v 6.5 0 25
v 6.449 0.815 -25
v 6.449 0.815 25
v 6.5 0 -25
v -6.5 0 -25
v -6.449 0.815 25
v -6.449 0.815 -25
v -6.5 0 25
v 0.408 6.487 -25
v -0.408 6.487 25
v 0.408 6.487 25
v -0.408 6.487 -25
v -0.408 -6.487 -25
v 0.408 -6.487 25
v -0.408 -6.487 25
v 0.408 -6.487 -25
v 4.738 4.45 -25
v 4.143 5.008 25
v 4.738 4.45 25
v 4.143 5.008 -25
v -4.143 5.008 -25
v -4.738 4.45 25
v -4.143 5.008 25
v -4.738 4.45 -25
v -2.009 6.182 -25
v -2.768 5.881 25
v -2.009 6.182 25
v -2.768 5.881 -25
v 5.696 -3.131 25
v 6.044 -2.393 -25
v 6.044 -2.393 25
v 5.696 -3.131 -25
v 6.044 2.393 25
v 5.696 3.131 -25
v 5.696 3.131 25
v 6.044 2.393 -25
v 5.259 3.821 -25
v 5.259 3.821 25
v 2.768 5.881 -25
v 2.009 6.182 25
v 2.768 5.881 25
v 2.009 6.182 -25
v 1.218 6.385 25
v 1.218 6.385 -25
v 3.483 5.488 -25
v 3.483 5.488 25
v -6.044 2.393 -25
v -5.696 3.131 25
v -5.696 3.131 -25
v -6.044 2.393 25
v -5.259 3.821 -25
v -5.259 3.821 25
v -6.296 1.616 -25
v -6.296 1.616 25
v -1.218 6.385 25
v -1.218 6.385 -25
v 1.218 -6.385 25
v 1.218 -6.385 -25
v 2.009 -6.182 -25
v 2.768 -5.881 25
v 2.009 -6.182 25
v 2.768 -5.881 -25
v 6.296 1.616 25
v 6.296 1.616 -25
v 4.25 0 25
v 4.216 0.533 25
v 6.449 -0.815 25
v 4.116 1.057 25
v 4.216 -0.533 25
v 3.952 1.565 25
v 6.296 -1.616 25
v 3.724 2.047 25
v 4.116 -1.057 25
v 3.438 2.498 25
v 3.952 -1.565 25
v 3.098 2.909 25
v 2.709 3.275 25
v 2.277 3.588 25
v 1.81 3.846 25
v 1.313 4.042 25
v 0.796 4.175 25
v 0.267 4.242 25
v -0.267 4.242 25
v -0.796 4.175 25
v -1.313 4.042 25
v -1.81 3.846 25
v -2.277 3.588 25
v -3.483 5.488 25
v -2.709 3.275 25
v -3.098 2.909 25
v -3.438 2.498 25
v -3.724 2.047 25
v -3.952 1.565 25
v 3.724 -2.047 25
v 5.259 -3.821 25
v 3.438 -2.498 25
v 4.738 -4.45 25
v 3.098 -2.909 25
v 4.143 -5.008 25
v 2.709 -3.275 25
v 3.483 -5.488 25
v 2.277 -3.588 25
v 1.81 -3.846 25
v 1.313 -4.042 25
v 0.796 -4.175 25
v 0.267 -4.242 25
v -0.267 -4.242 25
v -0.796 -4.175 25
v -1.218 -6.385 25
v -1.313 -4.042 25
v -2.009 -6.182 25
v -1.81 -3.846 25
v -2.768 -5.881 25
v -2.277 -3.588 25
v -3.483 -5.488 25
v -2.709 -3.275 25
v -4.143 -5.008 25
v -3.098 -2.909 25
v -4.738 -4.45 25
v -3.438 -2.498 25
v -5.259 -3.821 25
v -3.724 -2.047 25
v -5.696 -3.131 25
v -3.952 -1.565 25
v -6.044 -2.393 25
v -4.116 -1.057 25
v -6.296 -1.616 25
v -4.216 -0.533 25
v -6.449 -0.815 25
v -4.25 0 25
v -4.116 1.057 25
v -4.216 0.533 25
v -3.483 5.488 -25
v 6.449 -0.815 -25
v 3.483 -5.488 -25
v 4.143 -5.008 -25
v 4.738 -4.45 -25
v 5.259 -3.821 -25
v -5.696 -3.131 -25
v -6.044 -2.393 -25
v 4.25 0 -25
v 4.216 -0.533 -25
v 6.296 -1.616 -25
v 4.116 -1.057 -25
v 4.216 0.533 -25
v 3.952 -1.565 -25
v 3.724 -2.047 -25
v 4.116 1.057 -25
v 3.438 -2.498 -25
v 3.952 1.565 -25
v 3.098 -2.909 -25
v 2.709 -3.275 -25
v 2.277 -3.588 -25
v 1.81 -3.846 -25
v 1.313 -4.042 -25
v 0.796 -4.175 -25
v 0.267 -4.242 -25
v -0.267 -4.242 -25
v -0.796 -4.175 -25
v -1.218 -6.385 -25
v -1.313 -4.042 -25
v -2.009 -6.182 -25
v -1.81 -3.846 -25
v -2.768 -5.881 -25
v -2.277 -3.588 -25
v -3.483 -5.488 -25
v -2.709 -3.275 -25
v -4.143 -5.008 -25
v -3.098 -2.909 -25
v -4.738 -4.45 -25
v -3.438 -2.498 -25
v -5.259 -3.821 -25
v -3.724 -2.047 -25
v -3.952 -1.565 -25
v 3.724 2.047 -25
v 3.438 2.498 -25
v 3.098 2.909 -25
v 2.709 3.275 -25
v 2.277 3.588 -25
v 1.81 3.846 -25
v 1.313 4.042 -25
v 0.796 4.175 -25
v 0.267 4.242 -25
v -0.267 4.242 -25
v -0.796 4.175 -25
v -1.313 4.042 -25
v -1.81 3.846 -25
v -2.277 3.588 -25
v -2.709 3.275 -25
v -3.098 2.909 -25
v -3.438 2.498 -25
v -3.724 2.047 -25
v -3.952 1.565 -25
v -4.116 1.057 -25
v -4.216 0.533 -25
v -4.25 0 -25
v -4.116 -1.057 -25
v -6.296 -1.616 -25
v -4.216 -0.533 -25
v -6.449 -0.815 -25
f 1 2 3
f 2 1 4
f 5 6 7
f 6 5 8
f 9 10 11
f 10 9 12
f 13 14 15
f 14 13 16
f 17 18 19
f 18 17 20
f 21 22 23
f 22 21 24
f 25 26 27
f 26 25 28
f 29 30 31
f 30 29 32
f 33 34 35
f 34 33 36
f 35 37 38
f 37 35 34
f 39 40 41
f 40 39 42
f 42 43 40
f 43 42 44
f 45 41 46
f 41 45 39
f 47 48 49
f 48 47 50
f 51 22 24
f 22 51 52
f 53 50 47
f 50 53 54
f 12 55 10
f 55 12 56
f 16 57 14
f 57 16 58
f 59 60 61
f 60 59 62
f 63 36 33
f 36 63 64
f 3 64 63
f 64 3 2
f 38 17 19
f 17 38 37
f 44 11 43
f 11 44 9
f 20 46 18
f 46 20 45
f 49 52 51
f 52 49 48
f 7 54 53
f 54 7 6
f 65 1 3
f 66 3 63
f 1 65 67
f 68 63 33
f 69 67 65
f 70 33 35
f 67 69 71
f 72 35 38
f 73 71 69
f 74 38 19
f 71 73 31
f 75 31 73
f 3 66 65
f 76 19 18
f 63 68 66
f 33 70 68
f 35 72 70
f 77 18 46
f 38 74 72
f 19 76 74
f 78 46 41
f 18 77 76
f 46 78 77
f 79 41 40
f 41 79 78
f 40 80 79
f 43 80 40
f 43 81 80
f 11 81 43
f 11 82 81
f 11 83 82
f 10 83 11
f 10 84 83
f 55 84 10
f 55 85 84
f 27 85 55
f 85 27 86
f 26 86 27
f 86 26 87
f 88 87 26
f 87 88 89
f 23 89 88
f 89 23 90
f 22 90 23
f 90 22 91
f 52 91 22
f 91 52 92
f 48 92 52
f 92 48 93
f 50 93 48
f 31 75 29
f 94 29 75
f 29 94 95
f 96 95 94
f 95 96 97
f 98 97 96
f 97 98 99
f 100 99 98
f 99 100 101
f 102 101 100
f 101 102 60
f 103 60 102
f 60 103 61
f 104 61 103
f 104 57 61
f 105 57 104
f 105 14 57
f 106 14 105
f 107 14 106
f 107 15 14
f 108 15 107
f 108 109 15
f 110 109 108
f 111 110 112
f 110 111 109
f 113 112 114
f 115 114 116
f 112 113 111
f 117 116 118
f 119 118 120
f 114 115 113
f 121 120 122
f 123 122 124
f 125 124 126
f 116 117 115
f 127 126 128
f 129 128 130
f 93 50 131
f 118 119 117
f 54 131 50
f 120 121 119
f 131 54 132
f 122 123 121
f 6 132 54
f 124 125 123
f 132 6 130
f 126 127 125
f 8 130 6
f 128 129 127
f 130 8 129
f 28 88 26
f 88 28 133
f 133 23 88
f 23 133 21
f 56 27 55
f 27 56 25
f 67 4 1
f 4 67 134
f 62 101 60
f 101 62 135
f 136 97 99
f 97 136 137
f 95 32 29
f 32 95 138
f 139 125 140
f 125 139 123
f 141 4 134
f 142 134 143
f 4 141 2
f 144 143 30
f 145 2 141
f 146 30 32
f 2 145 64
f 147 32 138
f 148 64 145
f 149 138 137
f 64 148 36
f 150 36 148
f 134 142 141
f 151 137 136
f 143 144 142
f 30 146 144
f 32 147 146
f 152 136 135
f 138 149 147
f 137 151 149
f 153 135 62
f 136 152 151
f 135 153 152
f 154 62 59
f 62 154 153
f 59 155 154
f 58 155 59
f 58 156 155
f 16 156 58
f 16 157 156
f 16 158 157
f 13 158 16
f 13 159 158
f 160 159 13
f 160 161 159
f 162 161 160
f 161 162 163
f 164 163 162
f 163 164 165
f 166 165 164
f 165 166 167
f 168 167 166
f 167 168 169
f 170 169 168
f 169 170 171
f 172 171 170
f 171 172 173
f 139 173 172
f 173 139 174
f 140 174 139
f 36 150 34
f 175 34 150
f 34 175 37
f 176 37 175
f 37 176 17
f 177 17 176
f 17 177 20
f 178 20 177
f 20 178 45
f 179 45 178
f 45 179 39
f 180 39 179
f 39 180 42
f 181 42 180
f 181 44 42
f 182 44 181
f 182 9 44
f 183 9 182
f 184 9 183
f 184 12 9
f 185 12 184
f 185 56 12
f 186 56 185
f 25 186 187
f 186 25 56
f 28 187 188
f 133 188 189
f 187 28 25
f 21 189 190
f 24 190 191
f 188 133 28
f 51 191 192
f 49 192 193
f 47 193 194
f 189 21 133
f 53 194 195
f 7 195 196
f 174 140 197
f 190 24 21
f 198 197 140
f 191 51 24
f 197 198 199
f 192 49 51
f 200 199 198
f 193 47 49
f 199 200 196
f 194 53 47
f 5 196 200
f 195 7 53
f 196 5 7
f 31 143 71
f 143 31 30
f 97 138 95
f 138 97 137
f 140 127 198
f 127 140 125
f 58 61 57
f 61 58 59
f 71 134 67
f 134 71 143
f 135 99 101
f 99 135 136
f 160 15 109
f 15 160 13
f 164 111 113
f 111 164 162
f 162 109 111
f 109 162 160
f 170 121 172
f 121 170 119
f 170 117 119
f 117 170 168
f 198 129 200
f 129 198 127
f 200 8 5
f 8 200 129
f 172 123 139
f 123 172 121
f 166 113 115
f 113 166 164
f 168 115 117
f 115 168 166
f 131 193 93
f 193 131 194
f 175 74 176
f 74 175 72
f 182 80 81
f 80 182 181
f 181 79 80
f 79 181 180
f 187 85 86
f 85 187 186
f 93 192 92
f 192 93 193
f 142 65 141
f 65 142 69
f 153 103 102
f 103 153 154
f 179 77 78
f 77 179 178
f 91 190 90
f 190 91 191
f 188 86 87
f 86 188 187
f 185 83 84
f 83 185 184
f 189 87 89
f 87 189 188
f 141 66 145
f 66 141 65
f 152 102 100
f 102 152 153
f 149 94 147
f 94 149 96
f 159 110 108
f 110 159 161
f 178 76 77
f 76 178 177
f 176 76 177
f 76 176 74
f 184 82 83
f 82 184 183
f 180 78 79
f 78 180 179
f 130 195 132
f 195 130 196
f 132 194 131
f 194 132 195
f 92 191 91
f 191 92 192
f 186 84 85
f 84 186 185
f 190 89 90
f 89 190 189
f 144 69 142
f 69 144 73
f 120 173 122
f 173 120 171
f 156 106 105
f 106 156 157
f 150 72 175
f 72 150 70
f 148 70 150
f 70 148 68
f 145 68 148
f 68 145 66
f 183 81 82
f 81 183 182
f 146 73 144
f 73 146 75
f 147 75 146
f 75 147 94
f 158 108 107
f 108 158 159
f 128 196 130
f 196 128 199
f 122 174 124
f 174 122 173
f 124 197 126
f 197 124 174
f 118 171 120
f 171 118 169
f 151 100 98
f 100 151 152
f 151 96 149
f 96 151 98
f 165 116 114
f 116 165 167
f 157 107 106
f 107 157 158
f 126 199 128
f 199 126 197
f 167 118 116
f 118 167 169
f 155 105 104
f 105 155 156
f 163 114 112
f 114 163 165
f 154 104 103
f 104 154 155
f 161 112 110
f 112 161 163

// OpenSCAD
$fn = 50;


difference() {
	union() {
		translate(v = [0, 0, -25.0000000000]) {
			cylinder(h = 50, r = 6.5000000000);
		}
	}
	union() {
		translate(v = [0, 0, -100.0000000000]) {
			cylinder(h = 200, r = 4.2500000000);
		}
	}
}
